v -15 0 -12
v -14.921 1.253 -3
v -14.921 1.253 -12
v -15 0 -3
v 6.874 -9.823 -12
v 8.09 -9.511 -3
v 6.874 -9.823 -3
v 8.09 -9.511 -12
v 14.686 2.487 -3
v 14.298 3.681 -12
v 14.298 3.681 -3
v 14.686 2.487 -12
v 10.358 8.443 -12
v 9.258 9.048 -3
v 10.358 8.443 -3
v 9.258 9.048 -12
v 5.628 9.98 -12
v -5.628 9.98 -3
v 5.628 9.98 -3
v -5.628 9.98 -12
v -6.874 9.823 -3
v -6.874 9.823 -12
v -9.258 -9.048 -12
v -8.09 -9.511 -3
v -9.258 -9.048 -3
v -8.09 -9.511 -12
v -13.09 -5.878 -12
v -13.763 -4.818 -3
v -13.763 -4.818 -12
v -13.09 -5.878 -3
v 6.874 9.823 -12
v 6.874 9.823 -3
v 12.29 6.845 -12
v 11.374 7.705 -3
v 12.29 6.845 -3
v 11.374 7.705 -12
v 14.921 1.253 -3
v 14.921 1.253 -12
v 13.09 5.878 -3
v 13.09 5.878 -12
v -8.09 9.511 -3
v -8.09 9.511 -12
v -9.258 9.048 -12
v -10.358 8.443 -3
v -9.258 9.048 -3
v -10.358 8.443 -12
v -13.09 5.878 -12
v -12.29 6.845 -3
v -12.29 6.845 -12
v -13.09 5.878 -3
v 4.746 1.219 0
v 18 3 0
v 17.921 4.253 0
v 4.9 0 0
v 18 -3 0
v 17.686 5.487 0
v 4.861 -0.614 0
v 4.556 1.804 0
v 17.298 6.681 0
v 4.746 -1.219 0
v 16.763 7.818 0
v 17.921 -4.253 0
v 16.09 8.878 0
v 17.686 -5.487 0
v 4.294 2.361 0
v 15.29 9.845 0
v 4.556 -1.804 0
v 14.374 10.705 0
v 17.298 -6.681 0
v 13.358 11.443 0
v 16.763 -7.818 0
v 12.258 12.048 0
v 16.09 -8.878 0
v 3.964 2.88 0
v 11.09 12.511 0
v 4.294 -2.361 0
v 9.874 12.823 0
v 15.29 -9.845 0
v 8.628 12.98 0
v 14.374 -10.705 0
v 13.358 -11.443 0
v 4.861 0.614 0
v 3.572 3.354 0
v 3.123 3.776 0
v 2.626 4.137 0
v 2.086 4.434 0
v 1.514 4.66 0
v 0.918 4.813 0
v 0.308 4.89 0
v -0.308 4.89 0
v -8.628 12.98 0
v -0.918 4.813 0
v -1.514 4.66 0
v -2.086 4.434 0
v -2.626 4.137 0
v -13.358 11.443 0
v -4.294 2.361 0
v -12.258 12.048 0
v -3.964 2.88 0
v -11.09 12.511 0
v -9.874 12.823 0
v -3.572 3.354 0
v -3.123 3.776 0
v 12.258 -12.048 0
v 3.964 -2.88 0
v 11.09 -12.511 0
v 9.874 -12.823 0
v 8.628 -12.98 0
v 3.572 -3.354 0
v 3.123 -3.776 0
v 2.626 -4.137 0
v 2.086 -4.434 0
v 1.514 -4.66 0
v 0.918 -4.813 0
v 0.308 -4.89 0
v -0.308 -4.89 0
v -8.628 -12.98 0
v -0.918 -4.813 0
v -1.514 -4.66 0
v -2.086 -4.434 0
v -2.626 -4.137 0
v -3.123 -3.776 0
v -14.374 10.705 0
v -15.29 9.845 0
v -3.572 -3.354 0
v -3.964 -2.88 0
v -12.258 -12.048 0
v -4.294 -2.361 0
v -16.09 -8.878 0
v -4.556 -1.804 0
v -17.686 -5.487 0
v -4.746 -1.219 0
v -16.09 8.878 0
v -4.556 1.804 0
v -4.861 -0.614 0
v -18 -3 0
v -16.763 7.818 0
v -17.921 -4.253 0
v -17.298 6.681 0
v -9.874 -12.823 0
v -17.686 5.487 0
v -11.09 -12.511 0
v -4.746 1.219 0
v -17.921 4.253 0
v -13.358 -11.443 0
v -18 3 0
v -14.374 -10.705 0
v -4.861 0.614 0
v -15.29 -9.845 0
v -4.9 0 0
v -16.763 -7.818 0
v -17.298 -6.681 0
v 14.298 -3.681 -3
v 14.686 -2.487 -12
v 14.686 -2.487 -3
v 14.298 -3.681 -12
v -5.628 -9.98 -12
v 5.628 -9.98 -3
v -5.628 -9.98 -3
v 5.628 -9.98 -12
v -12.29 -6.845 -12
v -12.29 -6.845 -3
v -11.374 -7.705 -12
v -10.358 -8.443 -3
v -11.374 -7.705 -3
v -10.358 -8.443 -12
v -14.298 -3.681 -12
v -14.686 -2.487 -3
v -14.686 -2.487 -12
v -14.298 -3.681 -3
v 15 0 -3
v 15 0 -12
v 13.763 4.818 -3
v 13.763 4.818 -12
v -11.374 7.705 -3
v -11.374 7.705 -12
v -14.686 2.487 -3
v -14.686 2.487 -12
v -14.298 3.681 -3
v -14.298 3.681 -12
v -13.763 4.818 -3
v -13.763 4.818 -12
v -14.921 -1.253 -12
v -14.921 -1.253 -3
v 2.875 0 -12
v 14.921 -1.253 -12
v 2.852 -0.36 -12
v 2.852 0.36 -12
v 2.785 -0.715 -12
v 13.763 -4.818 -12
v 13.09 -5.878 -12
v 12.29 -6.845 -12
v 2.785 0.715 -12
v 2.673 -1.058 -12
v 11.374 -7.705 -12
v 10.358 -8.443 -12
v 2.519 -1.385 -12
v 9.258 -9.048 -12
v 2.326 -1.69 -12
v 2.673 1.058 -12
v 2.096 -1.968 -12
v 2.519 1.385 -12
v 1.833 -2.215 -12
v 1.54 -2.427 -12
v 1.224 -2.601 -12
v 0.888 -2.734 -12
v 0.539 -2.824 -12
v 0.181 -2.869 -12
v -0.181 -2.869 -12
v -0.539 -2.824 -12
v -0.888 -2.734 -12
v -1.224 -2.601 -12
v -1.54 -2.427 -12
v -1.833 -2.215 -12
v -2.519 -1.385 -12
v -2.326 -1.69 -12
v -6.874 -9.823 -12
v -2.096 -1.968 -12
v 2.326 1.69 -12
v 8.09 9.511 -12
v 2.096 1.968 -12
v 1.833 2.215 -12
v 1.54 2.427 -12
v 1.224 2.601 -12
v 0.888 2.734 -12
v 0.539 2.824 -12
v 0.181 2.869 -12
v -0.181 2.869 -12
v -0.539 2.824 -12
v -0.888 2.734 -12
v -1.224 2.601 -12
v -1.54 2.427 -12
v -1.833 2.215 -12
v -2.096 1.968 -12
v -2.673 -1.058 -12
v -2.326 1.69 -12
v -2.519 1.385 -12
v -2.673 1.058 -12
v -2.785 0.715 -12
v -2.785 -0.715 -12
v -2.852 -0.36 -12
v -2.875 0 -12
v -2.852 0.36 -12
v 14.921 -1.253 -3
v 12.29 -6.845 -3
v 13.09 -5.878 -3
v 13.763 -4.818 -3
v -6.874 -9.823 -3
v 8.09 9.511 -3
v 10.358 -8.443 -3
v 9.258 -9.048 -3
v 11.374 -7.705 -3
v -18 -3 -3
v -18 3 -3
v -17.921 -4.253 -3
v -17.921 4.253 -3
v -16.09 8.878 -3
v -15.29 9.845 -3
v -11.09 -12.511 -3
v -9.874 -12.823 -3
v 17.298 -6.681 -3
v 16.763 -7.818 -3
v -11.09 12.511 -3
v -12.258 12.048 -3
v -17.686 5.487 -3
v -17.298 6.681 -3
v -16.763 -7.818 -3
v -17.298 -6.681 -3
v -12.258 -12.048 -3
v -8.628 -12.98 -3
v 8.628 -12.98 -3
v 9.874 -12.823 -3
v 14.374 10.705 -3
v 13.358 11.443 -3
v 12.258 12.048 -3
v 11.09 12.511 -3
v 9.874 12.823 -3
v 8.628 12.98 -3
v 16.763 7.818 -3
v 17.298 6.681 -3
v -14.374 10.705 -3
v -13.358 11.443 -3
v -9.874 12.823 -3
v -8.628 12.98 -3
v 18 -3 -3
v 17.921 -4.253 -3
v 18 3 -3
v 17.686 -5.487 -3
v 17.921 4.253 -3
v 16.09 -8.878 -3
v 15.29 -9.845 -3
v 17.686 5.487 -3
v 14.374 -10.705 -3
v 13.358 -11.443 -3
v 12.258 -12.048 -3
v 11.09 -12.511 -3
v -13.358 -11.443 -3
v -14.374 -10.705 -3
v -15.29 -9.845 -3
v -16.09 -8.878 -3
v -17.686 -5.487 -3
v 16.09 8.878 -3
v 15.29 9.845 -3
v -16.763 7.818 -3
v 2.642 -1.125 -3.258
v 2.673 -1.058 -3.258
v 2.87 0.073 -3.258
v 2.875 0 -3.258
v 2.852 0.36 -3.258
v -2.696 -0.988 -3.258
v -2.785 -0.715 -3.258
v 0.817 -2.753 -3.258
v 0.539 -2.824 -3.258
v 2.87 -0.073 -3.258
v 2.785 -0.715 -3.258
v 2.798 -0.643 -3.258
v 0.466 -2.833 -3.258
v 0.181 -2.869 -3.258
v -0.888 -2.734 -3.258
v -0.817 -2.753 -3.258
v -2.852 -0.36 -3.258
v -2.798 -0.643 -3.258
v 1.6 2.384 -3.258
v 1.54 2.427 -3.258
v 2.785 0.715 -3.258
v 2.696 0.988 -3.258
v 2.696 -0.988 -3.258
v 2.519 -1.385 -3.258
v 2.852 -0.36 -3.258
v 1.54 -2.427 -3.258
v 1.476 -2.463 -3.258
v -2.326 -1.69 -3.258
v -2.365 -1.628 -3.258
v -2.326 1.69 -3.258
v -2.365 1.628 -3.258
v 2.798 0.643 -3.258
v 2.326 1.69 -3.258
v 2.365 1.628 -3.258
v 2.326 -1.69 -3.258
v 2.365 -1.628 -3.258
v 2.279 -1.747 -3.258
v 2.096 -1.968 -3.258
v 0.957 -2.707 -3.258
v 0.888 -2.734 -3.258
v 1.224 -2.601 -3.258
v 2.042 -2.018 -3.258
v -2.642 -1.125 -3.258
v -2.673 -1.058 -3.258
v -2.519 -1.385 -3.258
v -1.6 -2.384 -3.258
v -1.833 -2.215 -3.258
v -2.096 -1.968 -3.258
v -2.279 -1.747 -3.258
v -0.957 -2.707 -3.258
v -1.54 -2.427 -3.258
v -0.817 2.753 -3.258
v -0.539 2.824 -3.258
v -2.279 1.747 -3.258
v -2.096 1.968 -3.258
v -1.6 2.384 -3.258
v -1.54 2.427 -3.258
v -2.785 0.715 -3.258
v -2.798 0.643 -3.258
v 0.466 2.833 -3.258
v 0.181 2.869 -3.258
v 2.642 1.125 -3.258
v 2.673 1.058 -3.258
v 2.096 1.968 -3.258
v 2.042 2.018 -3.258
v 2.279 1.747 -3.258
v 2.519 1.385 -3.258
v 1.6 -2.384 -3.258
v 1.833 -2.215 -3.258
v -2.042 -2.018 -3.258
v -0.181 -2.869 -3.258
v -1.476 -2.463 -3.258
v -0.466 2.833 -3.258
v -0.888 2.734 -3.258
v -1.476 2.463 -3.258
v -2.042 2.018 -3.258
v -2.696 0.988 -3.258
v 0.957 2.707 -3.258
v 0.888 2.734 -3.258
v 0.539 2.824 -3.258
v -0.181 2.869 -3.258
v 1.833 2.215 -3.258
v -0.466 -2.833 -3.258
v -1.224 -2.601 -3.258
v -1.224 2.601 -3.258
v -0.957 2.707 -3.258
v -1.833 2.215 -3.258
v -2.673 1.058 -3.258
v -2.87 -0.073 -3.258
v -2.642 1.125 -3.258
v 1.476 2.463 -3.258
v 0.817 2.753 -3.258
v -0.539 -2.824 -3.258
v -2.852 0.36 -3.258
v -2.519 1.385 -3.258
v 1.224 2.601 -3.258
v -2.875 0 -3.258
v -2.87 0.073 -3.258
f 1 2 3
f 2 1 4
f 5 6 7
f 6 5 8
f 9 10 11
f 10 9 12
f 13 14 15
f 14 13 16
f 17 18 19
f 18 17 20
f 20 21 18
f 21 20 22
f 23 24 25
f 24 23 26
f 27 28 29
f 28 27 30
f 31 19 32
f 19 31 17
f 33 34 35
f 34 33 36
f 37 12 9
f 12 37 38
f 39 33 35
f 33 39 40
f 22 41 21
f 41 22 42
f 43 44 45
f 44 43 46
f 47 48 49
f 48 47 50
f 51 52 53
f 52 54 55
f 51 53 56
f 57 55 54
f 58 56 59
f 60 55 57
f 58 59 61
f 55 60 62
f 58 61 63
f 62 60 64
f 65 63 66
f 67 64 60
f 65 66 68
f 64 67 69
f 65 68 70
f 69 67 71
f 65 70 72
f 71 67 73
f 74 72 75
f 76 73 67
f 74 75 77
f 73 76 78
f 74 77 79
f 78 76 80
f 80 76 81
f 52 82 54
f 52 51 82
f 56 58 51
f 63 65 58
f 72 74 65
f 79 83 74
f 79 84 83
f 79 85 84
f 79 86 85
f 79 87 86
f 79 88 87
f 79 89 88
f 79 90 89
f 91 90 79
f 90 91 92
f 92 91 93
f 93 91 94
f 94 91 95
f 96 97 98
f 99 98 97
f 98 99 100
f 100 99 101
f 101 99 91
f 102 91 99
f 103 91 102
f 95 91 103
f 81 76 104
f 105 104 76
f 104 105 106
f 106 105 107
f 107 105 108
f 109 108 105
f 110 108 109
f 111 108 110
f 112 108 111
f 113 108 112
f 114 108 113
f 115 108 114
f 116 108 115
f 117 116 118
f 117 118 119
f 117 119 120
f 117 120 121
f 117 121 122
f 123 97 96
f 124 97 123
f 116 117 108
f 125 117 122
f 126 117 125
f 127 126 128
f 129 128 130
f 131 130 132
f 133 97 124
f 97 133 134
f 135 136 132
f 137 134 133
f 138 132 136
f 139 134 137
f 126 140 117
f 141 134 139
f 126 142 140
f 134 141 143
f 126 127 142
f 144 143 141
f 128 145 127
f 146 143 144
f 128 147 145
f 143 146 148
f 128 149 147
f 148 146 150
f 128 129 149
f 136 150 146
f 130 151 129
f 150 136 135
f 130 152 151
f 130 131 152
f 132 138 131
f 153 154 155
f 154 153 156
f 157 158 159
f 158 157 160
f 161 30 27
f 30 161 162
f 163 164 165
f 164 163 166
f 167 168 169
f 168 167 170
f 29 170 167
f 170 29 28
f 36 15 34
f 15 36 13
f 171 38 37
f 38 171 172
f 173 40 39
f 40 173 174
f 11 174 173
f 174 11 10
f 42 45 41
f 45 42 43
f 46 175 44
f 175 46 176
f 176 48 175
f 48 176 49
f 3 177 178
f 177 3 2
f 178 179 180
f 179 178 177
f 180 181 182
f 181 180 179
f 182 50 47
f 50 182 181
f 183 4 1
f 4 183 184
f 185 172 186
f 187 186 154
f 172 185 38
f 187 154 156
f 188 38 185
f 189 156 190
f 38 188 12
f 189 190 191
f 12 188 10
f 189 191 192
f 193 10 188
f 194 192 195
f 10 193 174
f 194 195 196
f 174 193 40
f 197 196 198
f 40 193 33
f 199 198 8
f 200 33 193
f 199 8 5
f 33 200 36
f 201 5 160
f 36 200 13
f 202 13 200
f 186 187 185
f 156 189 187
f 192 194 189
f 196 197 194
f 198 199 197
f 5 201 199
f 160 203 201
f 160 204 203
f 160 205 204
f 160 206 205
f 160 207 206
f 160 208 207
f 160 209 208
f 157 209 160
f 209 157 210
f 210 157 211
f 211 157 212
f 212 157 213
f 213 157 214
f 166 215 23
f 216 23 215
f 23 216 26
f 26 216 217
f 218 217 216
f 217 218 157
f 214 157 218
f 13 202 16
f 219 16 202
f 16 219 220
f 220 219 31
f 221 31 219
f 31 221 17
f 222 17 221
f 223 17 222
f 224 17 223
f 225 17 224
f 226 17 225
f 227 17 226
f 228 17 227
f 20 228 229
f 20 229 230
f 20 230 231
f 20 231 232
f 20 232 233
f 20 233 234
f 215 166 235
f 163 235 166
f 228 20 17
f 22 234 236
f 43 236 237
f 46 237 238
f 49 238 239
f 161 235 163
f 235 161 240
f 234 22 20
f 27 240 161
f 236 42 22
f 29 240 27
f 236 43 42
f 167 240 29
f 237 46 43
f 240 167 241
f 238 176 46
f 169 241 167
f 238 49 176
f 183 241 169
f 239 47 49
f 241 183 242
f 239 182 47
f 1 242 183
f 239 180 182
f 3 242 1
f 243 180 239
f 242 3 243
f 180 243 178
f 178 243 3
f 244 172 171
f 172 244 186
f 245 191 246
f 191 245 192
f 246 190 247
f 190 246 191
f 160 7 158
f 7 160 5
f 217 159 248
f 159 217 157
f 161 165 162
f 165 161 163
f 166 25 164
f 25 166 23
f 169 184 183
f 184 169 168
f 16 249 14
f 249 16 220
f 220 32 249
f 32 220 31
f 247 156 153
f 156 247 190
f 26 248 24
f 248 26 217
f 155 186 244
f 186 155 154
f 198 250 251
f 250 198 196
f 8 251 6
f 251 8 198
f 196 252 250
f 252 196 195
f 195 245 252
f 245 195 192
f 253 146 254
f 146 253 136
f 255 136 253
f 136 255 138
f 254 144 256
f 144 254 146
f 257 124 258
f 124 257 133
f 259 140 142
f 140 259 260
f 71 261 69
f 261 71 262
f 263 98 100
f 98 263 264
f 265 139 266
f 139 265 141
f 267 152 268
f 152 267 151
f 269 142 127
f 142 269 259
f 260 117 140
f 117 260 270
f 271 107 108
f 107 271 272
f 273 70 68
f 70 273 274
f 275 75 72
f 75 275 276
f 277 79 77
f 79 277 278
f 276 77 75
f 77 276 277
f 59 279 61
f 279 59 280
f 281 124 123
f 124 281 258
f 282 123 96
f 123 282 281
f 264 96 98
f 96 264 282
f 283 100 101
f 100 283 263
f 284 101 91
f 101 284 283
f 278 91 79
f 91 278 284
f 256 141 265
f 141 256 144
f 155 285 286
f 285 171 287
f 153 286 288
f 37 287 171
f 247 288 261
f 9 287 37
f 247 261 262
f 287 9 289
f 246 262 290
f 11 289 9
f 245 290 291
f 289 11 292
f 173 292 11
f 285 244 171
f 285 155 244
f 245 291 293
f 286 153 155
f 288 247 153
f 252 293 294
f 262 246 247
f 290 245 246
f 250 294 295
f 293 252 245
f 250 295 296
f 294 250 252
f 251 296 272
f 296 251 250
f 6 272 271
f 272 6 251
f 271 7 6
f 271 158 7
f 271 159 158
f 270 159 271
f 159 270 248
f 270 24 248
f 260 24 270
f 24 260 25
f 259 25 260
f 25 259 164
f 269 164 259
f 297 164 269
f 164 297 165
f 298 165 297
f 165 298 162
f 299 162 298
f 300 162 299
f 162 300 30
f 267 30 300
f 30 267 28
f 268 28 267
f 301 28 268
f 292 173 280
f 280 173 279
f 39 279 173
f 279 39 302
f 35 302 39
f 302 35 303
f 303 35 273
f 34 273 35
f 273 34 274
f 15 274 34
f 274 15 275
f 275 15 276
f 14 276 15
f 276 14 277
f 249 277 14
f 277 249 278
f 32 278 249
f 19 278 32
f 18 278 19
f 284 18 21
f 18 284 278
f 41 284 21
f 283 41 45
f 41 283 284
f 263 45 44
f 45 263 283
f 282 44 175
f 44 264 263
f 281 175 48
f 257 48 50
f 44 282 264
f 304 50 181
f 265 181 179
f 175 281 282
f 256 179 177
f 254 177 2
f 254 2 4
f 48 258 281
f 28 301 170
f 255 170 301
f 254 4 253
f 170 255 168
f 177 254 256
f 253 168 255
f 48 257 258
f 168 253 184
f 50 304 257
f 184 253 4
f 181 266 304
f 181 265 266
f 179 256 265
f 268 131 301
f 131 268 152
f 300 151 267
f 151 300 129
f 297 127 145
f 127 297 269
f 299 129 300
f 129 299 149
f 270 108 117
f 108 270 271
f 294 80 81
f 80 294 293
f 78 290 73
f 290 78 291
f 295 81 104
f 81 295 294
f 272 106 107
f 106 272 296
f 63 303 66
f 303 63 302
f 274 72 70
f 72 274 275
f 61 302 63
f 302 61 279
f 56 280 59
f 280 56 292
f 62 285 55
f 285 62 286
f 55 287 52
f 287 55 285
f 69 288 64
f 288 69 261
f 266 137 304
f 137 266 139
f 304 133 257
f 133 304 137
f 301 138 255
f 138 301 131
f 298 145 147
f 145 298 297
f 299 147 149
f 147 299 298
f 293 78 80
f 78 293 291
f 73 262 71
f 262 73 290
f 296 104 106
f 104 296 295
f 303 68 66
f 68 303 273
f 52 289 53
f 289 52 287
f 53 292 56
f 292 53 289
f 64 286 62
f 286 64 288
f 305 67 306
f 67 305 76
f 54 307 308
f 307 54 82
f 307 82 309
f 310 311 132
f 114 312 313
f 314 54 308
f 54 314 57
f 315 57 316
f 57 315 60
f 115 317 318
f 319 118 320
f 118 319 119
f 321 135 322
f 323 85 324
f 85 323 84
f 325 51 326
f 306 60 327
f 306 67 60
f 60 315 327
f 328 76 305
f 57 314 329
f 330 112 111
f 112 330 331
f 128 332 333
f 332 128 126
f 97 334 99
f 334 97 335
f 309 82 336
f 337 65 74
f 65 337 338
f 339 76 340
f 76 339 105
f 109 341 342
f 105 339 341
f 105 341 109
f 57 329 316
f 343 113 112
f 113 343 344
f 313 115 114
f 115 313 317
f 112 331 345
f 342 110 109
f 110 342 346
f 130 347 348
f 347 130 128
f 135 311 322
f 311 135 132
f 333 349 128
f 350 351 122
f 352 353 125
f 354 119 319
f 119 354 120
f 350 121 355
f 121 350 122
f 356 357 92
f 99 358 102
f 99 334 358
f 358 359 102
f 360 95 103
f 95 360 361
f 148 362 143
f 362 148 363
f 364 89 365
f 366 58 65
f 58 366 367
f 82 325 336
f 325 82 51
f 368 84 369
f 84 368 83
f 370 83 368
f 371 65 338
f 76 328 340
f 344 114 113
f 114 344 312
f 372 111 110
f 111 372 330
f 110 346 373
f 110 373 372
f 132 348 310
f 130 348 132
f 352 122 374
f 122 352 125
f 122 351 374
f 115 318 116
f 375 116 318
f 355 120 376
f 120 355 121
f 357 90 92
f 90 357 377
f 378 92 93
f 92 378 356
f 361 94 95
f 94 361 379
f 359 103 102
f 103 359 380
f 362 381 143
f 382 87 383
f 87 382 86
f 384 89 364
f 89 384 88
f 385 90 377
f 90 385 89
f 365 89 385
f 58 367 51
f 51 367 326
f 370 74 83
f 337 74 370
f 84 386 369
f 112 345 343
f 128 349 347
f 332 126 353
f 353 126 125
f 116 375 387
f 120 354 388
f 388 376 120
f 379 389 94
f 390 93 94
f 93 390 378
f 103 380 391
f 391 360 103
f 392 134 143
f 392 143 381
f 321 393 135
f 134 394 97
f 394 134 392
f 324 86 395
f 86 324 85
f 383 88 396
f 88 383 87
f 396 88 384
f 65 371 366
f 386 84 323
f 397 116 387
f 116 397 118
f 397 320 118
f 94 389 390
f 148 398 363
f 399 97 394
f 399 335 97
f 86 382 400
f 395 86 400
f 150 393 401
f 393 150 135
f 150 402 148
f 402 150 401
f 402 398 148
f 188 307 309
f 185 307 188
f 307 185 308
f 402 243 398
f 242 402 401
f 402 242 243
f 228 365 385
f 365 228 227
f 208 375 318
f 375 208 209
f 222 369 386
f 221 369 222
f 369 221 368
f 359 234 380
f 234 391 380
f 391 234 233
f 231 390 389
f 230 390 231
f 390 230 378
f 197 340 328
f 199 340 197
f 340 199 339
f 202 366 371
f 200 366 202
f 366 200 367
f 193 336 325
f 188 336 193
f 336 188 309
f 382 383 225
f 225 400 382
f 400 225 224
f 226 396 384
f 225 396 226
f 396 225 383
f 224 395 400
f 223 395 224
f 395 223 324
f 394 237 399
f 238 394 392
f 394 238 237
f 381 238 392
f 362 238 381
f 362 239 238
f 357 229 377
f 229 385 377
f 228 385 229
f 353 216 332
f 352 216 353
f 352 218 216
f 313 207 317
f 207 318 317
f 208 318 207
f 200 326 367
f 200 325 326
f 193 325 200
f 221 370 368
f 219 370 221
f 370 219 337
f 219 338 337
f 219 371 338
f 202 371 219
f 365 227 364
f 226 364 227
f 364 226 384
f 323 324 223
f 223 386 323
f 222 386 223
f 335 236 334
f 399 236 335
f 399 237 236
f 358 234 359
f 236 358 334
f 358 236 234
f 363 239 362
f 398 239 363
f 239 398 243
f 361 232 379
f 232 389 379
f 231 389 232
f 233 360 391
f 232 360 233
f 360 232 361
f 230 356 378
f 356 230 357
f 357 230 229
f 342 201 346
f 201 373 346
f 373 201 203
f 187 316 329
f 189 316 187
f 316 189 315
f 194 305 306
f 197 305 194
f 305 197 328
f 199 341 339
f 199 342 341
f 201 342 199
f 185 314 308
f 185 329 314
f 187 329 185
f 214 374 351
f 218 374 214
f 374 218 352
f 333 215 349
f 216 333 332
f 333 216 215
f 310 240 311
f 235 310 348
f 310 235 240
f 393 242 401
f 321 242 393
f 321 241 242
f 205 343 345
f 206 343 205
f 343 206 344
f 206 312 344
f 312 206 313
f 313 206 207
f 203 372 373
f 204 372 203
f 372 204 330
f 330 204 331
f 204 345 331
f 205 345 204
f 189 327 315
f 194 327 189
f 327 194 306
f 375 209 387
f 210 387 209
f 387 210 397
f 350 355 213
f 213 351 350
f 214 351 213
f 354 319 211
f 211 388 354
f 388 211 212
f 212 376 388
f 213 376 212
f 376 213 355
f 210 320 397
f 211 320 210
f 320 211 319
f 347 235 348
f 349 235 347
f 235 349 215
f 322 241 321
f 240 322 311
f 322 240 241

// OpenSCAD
$fn = 50;


difference() {
	union() {
		translate(v = [0, 0, -12]) {
			hull() {
				translate(v = [-5.0000000000, 0.0000000000, 0]) {
					cylinder(h = 12, r = 10.0000000000);
				}
				translate(v = [5.0000000000, 0.0000000000, 0]) {
					cylinder(h = 12, r = 10.0000000000);
				}
				translate(v = [-5.0000000000, -0.0000000000, 0]) {
					cylinder(h = 12, r = 10.0000000000);
				}
				translate(v = [5.0000000000, -0.0000000000, 0]) {
					cylinder(h = 12, r = 10.0000000000);
				}
			}
		}
		translate(v = [0, 0, -3]) {
			hull() {
				translate(v = [-8.0000000000, 3.0000000000, 0]) {
					cylinder(h = 3, r = 10.0000000000);
				}
				translate(v = [8.0000000000, 3.0000000000, 0]) {
					cylinder(h = 3, r = 10.0000000000);
				}
				translate(v = [-8.0000000000, -3.0000000000, 0]) {
					cylinder(h = 3, r = 10.0000000000);
				}
				translate(v = [8.0000000000, -3.0000000000, 0]) {
					cylinder(h = 3, r = 10.0000000000);
				}
			}
		}
	}
	union() {
		translate(v = [0, 0, 0]) {
			rotate(a = [0, 0, 0]) {
				difference() {
					union() {
						#translate(v = [0, 0, -3.7000000000]) {
							cylinder(h = 3.7000000000, r = 10.0000000000, r1 = 2.6000000000, r2 = 4.9000000000);
						}
						#translate(v = [0, 0, -12.0000000000]) {
							cylinder(h = 12, r = 2.6000000000);
						}
						#translate(v = [0, 0, -12.0000000000]) {
							cylinder(h = 12, r = 2.8750000000);
						}
						#translate(v = [0, 0, -12.0000000000]) {
							cylinder(h = 12, r = 2.6000000000);
						}
					}
					union();
				}
			}
		}
	}
}
